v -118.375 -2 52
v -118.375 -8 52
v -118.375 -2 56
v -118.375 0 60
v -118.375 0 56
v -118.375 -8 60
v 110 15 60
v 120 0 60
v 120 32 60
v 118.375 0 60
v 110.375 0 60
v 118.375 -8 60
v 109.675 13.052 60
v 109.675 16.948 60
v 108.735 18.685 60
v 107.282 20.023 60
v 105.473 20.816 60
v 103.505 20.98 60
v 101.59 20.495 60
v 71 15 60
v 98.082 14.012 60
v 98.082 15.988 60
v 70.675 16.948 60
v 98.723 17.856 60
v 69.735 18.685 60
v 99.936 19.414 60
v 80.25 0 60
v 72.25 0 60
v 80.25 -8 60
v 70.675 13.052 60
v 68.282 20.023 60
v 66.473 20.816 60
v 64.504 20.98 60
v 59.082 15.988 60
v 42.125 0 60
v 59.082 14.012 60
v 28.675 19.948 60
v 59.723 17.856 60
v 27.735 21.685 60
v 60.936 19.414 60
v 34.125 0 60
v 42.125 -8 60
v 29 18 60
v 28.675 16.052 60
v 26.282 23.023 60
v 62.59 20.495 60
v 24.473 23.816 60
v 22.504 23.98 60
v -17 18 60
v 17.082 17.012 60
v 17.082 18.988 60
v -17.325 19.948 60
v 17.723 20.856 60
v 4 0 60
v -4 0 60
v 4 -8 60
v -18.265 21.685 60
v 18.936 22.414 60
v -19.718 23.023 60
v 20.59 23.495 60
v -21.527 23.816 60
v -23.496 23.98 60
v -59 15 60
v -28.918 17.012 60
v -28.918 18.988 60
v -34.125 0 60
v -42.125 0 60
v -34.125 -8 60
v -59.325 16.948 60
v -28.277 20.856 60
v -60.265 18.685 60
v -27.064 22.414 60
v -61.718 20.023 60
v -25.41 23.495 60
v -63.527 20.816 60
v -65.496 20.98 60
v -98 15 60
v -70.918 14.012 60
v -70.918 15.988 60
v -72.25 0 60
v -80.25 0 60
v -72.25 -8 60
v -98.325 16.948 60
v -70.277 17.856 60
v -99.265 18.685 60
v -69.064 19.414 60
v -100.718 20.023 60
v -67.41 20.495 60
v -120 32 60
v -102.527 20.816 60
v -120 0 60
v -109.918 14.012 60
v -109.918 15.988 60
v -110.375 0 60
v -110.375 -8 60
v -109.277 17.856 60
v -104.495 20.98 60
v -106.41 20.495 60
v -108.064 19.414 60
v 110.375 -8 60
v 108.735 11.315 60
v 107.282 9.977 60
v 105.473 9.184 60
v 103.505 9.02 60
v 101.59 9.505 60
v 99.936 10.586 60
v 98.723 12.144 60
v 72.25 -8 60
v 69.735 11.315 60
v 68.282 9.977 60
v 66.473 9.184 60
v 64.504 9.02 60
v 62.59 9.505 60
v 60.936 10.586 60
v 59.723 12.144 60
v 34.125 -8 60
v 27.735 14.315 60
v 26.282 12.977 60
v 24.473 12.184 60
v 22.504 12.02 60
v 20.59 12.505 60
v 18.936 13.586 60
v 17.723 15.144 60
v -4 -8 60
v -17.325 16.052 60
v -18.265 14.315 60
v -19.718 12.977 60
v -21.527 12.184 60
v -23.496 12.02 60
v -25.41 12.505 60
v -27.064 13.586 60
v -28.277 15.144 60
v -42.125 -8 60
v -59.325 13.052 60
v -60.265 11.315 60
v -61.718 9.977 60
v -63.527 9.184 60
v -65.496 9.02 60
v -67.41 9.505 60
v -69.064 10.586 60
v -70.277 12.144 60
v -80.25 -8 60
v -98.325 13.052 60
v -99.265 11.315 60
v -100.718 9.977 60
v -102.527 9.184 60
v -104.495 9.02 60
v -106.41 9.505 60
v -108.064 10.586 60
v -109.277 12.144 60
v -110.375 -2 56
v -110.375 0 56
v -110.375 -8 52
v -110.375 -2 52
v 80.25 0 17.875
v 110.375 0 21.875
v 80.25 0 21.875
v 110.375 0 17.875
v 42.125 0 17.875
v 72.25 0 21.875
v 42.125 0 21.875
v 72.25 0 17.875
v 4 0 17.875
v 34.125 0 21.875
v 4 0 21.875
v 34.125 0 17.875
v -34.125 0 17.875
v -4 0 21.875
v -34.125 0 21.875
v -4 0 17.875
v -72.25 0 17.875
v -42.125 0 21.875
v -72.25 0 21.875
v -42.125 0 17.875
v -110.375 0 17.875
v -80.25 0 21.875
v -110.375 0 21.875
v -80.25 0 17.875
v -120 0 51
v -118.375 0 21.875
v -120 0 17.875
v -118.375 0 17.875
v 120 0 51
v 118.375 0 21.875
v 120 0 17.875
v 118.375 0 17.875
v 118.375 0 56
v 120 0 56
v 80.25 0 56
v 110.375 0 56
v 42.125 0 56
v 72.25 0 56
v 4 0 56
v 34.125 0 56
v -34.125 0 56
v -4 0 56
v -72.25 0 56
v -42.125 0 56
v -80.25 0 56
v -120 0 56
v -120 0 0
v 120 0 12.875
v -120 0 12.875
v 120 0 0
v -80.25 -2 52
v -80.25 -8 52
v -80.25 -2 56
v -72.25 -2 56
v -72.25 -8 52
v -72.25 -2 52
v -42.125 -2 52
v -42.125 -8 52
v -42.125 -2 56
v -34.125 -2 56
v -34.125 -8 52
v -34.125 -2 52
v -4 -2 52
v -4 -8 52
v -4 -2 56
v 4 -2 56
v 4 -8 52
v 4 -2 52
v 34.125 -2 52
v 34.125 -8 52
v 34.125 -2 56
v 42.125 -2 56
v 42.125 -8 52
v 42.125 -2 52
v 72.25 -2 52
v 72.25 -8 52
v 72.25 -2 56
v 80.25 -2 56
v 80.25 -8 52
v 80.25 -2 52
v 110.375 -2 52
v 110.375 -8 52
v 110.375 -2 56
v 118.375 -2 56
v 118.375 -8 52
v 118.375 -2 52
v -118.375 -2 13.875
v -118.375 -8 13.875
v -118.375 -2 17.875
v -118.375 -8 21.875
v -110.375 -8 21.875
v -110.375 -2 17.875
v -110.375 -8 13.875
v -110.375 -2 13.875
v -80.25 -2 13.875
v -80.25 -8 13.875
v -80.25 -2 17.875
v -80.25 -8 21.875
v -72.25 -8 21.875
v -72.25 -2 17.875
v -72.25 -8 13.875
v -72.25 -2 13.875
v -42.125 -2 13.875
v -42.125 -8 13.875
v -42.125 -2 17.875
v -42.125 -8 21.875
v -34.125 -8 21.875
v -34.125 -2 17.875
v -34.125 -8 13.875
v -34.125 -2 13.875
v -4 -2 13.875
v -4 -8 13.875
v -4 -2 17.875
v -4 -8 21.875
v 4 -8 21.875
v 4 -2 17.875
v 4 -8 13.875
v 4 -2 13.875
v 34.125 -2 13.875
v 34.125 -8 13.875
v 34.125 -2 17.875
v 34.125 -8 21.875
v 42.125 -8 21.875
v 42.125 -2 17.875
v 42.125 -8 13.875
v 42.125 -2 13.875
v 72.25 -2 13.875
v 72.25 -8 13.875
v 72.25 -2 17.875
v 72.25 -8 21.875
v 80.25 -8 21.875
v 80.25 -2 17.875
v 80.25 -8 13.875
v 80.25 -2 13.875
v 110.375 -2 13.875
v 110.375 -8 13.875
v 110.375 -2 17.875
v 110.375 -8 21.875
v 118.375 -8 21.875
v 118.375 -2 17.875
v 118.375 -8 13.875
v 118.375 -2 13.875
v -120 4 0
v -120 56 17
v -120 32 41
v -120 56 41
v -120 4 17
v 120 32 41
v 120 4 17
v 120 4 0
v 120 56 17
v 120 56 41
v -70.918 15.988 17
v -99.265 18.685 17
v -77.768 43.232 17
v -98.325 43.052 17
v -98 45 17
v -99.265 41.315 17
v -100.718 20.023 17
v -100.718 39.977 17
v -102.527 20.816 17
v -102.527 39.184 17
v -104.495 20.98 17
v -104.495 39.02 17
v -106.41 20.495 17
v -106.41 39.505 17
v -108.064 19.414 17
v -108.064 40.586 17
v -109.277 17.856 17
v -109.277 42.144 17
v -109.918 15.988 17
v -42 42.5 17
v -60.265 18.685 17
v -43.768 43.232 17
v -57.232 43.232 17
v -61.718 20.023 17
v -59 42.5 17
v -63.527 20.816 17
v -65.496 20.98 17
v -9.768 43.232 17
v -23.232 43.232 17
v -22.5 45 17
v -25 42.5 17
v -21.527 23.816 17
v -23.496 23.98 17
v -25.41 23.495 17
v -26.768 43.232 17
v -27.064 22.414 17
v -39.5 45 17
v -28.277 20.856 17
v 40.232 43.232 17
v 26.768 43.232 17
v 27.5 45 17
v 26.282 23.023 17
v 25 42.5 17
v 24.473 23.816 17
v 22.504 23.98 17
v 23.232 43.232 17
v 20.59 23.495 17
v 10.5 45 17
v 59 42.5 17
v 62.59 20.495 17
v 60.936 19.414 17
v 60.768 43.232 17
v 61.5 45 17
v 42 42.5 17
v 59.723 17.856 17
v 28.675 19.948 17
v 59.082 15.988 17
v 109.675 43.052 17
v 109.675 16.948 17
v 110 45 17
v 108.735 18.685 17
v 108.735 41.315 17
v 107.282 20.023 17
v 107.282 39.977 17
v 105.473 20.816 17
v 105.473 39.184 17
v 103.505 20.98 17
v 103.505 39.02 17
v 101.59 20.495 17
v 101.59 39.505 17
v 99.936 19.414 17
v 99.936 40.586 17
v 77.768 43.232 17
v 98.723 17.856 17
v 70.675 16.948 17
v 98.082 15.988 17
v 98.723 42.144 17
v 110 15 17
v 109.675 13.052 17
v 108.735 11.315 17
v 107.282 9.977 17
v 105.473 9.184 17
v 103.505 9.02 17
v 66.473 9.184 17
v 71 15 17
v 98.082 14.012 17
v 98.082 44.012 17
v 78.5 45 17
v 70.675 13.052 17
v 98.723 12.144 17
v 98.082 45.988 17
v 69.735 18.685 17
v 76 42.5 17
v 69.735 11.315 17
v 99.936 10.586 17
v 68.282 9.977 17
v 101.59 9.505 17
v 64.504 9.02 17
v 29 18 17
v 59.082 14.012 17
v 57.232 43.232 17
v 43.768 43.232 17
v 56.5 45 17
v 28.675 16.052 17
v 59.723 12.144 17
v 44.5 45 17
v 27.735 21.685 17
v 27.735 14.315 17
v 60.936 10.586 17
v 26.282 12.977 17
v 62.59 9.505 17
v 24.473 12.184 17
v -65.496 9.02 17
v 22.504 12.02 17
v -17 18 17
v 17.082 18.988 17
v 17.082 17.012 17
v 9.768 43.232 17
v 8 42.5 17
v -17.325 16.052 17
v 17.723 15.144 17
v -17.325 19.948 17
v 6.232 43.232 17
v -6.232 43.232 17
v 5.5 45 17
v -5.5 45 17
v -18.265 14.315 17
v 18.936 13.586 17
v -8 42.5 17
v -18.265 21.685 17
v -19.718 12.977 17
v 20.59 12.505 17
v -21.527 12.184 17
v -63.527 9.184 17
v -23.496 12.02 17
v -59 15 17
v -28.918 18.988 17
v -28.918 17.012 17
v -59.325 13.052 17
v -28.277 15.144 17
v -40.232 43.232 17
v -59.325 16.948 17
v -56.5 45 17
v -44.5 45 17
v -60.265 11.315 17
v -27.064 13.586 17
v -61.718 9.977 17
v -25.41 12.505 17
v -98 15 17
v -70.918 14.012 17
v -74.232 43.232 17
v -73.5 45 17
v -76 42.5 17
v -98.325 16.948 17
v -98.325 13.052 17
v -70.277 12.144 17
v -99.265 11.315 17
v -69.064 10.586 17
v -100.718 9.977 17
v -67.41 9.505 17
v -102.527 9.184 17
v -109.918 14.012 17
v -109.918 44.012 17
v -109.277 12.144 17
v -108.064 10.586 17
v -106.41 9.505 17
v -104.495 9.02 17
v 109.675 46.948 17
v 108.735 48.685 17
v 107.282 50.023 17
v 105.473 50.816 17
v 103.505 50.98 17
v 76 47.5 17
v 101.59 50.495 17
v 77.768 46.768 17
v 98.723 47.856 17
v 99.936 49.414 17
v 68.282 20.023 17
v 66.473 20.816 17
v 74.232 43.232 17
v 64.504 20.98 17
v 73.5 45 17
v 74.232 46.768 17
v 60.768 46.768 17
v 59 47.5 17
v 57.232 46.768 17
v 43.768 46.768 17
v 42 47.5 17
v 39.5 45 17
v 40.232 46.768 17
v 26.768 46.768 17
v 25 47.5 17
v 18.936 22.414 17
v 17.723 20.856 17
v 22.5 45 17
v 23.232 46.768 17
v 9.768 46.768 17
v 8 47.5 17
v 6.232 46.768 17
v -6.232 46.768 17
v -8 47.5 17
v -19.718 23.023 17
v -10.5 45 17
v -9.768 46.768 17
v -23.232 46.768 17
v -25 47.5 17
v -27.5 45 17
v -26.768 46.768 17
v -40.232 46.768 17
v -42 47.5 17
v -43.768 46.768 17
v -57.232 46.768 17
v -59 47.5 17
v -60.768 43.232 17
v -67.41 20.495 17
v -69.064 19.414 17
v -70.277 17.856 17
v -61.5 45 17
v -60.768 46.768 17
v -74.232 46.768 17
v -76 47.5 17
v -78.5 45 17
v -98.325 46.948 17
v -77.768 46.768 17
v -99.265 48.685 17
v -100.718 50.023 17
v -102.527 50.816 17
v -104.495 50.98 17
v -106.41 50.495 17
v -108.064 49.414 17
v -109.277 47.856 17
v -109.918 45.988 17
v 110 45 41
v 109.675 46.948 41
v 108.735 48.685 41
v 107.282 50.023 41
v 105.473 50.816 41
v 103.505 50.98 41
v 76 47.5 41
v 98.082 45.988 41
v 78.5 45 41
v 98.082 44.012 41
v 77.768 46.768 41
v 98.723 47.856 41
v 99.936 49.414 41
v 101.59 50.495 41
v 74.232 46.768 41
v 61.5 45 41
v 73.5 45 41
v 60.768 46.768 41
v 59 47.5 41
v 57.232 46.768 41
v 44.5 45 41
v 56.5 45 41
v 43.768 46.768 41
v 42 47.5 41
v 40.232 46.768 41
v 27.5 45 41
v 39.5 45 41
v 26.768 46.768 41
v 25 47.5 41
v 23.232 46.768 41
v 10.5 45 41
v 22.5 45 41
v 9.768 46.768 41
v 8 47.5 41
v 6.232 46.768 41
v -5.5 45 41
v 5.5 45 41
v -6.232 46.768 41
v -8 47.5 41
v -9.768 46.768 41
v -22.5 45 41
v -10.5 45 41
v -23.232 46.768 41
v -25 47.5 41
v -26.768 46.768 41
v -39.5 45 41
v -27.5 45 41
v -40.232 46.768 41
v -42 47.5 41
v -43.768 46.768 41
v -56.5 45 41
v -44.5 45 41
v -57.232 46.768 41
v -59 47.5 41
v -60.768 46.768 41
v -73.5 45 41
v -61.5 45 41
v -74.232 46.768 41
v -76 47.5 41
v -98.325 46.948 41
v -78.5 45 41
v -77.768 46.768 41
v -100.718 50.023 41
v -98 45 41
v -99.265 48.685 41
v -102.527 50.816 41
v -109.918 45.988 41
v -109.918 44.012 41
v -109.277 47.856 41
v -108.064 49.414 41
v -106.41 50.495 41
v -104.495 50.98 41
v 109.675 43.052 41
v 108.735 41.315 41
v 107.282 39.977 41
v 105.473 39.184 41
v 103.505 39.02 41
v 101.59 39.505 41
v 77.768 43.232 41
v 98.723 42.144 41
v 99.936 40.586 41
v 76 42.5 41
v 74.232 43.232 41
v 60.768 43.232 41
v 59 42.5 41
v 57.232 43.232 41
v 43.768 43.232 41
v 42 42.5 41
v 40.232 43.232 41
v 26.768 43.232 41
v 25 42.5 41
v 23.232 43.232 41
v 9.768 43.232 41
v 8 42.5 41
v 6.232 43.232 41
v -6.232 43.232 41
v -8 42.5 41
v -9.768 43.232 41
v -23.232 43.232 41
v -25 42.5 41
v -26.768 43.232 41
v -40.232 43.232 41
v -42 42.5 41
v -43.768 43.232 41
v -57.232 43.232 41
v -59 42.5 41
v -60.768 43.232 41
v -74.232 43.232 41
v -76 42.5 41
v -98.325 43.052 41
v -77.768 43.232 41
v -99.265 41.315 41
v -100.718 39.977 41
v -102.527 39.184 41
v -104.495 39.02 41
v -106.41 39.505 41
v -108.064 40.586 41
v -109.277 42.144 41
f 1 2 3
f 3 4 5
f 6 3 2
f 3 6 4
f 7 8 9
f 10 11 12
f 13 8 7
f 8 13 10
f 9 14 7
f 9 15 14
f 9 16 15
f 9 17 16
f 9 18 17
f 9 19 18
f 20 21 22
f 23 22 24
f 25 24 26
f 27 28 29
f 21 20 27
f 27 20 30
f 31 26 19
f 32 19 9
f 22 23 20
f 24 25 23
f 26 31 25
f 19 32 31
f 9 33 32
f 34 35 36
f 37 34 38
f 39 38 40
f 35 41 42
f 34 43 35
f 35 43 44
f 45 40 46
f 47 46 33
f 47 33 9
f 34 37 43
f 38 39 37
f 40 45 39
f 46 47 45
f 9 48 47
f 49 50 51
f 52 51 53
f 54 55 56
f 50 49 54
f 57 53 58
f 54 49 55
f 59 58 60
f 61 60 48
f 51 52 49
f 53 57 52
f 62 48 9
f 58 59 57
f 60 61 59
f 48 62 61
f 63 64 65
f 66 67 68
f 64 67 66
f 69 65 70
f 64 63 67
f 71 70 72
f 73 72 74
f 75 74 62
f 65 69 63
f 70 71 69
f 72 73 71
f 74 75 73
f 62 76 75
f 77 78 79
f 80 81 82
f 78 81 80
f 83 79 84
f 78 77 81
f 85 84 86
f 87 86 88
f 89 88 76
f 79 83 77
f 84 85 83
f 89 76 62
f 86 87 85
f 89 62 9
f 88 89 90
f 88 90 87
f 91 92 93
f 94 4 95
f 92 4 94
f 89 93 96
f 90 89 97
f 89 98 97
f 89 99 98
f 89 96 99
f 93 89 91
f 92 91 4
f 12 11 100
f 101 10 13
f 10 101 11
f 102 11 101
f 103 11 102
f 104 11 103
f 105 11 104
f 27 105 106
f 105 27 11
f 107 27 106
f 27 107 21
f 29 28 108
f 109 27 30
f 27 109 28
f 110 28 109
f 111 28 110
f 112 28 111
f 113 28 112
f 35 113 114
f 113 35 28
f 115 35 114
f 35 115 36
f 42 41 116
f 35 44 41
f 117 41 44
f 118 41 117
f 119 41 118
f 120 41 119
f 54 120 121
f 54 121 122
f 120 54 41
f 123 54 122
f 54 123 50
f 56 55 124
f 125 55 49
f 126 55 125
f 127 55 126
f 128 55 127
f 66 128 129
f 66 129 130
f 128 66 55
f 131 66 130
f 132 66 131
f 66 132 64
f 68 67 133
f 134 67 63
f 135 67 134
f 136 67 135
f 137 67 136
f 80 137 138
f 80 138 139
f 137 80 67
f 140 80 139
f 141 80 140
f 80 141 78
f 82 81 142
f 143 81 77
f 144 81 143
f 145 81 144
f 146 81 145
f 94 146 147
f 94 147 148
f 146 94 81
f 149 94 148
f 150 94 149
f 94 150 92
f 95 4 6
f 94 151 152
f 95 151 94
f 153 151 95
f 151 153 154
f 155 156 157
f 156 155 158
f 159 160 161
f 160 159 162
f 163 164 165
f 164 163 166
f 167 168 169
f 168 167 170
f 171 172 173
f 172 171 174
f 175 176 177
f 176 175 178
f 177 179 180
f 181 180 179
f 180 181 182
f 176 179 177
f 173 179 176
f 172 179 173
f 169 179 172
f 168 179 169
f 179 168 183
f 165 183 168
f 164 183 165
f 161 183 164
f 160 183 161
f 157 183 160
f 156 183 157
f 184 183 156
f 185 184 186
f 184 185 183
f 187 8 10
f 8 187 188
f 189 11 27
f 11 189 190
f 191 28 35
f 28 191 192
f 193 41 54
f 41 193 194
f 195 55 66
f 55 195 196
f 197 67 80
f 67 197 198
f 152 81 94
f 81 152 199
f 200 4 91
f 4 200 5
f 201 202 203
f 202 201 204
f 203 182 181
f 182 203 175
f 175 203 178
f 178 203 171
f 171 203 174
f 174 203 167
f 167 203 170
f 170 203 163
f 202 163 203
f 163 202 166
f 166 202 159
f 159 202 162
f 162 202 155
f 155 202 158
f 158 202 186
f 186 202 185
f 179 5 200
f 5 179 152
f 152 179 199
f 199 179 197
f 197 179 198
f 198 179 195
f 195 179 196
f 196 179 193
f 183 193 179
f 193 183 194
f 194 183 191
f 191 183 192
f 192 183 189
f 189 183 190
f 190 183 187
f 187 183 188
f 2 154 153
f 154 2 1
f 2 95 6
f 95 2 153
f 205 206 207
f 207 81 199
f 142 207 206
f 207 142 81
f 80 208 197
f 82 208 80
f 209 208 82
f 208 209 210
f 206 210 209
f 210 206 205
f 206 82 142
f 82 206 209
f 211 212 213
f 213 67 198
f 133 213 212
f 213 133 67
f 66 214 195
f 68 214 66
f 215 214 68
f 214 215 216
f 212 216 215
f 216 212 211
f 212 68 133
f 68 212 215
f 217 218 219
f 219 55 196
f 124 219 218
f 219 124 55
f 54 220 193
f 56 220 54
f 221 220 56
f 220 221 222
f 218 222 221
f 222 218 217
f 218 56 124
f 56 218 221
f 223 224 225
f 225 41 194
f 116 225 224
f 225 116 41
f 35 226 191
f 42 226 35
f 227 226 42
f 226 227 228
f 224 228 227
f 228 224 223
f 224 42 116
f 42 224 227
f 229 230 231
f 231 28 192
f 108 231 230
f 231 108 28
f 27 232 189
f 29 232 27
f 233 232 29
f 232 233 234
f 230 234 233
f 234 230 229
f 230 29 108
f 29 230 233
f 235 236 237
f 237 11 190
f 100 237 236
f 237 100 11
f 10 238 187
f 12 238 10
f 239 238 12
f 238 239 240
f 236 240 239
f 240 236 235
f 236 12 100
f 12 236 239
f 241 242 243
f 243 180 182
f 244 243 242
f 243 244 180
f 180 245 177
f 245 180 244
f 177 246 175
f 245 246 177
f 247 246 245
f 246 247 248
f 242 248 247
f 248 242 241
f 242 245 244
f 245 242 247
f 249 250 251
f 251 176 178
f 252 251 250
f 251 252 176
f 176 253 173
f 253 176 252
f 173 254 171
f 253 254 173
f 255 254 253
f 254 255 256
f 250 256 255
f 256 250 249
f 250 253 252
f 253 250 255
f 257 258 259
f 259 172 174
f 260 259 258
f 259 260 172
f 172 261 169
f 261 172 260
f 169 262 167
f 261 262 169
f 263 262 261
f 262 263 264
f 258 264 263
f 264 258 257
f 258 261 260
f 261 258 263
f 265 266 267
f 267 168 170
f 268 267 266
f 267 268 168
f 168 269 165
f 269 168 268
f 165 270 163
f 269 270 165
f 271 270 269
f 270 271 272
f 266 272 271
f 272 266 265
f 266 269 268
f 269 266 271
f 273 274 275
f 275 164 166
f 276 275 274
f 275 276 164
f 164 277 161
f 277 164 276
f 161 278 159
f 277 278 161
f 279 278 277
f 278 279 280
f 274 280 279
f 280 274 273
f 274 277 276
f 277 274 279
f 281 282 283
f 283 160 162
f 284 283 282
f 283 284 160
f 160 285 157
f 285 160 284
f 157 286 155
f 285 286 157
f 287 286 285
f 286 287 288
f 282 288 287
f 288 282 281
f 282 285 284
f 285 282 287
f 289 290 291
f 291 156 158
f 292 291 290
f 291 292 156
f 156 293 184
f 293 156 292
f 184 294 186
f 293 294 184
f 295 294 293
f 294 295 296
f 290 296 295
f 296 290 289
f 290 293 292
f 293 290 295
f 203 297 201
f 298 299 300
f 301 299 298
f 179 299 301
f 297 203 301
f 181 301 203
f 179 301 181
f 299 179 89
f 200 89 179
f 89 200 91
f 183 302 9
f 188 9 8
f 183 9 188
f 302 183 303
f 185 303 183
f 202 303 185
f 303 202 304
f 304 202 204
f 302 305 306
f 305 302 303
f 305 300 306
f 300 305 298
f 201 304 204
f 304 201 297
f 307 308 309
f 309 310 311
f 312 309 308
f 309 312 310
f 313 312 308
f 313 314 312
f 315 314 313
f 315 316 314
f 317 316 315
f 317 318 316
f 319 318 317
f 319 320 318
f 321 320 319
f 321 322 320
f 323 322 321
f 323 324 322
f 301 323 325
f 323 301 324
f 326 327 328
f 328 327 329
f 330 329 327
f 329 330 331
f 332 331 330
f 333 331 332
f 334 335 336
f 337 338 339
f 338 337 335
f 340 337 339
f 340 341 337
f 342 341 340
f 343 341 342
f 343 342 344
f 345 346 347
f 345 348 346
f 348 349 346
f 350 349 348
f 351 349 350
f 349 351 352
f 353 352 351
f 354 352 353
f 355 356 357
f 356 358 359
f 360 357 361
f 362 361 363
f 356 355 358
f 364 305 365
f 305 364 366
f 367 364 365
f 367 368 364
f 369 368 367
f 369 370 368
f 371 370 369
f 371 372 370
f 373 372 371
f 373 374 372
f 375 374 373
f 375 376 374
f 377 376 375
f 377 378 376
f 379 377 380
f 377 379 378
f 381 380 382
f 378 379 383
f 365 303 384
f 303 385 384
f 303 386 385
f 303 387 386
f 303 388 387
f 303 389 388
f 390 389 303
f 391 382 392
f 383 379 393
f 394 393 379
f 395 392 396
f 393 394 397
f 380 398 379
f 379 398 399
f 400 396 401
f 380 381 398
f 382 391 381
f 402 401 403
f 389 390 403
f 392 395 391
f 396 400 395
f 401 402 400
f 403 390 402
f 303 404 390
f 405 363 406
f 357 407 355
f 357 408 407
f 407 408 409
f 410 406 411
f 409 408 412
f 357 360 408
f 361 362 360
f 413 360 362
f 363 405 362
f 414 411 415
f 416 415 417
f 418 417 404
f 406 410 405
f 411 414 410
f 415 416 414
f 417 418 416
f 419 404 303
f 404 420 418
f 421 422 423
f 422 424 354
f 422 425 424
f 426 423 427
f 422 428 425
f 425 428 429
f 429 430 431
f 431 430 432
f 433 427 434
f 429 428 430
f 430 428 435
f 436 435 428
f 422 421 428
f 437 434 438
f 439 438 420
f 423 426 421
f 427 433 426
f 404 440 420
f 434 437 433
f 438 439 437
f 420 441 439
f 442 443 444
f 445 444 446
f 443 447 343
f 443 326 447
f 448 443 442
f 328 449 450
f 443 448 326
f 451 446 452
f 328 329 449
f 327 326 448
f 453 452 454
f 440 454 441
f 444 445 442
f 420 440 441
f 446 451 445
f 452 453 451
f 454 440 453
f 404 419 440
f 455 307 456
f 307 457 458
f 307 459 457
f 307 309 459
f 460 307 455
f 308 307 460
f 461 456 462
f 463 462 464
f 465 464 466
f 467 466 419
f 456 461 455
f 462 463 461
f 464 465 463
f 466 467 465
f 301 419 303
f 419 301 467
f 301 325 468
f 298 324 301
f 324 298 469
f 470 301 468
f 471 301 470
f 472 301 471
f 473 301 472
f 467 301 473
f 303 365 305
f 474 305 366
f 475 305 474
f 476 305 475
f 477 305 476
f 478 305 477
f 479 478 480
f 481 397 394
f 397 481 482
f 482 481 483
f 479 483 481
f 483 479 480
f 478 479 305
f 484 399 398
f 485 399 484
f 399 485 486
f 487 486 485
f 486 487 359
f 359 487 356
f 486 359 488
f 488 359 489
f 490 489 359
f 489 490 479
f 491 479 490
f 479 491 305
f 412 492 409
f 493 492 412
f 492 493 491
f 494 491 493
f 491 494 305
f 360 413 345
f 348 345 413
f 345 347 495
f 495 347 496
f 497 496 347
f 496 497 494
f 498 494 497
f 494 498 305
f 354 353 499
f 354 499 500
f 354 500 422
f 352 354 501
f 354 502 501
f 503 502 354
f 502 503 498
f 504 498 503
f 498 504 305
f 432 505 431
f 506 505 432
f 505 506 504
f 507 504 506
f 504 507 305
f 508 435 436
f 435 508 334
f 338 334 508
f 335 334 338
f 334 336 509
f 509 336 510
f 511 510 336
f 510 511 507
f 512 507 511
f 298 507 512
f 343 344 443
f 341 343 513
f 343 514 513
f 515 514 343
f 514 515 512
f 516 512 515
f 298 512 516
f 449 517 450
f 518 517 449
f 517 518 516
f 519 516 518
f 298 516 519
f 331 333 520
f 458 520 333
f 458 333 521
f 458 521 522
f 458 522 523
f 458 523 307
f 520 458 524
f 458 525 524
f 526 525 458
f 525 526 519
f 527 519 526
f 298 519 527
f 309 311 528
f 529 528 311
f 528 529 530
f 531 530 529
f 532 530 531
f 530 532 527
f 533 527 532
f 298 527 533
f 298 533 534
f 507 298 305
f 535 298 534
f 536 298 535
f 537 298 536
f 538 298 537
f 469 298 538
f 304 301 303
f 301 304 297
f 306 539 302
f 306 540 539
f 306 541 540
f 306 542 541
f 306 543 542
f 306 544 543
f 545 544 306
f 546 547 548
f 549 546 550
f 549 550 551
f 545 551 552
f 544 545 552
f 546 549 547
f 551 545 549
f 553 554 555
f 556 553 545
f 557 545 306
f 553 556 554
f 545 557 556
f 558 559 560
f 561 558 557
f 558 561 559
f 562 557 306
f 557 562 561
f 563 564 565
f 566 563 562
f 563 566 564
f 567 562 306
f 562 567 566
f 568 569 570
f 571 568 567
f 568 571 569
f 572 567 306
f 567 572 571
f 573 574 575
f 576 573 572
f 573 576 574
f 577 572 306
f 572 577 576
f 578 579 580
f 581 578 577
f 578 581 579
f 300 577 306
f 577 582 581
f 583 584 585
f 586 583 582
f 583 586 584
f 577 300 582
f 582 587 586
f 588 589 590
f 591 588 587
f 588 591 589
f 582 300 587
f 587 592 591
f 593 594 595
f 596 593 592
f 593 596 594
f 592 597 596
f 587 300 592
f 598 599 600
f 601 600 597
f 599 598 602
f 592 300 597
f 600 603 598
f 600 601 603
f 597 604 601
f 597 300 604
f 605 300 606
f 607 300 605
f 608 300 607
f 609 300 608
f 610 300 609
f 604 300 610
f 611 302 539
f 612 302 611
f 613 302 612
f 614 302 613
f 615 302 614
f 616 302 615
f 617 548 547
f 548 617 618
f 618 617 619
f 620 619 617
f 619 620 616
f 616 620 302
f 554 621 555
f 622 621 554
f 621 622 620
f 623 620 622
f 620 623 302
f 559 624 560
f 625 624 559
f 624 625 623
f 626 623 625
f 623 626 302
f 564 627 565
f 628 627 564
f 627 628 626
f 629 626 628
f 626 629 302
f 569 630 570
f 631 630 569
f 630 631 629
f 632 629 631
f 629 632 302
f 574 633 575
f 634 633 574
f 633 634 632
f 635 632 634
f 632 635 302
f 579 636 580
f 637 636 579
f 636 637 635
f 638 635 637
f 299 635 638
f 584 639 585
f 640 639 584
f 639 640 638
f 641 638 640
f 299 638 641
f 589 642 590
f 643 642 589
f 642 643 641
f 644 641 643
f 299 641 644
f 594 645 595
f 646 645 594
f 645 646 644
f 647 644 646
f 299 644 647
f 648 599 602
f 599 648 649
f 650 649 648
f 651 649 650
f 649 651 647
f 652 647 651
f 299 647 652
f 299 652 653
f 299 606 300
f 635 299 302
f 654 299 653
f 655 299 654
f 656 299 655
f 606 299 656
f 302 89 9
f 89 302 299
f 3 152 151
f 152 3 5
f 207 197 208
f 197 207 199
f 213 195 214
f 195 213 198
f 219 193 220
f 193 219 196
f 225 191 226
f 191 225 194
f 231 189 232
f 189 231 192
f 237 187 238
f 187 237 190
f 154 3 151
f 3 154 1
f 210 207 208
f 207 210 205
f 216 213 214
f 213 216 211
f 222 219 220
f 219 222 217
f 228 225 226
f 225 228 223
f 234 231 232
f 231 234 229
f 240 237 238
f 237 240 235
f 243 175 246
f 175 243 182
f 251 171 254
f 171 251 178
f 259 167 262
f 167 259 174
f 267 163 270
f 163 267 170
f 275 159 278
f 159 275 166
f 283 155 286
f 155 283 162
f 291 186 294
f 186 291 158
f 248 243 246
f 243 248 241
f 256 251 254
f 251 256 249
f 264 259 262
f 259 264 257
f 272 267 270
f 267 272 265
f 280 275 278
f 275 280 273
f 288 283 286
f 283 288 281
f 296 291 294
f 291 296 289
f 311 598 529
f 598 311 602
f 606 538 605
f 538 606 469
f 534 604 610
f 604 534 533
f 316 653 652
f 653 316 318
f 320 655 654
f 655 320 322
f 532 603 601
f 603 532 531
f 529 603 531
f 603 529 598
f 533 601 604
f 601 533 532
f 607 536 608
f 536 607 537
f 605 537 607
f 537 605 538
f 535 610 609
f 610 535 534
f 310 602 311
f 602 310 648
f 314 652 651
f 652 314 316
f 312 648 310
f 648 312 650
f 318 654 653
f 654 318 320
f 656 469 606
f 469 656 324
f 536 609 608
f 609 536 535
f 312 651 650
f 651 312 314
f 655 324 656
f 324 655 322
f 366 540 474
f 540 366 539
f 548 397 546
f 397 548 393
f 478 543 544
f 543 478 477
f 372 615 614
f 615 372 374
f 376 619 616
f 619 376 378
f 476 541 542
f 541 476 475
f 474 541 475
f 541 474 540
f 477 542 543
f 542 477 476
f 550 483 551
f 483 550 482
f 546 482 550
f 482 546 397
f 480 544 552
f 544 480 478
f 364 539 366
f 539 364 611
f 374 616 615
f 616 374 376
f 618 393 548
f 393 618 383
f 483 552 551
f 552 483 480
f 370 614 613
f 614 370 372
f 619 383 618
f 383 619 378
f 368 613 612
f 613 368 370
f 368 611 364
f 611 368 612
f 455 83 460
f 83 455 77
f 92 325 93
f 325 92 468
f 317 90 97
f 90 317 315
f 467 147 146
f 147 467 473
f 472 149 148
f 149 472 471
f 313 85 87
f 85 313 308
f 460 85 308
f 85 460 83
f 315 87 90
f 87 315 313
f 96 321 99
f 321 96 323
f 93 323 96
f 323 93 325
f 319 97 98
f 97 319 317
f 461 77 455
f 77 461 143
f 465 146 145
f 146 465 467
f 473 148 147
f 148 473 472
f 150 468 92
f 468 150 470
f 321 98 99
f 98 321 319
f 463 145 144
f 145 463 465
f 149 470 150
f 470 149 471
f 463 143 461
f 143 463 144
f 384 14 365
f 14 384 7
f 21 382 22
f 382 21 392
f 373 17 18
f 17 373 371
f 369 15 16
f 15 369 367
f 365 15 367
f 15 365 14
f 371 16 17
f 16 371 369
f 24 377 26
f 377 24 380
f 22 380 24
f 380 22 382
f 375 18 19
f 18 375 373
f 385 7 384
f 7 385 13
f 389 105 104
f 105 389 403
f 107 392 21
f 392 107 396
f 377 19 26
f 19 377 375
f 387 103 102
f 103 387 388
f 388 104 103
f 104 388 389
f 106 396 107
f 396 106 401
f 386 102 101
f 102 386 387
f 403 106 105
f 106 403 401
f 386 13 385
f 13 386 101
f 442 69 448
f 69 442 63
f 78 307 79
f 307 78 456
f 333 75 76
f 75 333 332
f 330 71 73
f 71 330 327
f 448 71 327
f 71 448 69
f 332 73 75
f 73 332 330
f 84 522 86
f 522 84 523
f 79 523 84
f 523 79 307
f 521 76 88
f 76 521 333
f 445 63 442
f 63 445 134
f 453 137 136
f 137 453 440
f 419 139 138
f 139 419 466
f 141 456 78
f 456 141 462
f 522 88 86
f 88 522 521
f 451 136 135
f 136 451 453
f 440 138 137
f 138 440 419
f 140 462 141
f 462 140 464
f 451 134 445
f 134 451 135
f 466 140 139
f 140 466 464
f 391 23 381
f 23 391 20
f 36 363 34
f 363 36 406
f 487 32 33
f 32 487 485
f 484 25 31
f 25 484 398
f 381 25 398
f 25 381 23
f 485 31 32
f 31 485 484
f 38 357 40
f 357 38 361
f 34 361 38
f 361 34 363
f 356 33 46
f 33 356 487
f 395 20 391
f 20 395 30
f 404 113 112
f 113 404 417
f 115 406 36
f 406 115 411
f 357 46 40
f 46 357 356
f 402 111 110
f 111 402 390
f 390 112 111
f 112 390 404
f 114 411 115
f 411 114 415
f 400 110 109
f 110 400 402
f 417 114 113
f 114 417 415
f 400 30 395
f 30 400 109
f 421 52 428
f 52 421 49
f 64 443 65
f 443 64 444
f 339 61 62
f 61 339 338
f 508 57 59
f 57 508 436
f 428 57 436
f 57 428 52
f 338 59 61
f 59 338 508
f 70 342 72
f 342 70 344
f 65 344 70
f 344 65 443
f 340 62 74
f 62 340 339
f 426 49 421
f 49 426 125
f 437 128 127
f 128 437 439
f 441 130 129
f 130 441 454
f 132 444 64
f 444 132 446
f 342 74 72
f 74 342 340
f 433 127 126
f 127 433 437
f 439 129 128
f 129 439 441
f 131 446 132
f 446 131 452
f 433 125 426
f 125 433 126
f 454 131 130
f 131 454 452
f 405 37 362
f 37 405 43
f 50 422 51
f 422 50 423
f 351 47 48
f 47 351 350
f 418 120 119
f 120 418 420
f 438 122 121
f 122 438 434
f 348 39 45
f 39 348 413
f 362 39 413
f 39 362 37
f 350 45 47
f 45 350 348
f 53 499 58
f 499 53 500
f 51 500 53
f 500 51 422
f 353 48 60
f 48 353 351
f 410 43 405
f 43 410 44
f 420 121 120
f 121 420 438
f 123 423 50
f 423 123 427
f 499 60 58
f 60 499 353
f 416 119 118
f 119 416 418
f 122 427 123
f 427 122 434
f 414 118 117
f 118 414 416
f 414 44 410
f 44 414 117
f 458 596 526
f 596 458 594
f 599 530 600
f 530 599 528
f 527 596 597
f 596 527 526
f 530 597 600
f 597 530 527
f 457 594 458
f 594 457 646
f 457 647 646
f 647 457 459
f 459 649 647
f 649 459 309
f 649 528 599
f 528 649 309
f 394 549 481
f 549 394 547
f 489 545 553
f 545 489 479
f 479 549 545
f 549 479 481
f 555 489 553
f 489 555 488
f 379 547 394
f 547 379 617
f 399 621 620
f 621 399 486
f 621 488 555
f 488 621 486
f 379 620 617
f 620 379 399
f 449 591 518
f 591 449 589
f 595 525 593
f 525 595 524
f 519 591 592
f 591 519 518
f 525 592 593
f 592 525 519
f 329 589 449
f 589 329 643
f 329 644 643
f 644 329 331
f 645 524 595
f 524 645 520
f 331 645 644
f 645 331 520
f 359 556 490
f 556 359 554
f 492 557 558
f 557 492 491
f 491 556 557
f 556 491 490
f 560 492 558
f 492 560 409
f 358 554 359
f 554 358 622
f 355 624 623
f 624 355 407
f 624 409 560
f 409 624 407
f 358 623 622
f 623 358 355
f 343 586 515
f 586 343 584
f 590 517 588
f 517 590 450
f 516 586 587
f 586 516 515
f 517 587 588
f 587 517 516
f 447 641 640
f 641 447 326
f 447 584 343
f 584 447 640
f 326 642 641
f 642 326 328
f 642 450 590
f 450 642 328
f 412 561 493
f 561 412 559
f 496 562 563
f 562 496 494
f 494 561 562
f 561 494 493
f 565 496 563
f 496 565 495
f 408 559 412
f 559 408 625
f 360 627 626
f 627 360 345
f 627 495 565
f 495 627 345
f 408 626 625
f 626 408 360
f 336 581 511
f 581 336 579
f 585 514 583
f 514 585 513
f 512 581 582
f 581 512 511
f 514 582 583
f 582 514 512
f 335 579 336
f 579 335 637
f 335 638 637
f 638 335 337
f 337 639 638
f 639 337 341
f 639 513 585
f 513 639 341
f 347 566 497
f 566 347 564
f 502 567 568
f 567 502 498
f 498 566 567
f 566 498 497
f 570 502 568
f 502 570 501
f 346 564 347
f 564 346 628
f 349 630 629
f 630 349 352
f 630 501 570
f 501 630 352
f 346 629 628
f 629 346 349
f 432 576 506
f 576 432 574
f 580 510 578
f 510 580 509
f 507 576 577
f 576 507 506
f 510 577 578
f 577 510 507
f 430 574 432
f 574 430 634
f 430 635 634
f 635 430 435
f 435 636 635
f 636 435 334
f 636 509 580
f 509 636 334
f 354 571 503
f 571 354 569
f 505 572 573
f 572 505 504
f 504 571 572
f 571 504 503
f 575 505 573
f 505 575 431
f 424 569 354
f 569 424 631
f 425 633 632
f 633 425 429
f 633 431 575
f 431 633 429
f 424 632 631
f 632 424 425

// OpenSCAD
difference() {
    union() {
        translate([-120, 0, 0])
            cube([240, 56, 60]);
        for (a =[0:6])
        translate([a * 38.125 - (120 - (240 - 8 - 6*38.125) / 2), -8, 52])
            cube([8,8,8]);

        for (a =[0:6])
        translate([a * 38.125 - (120 - (240 - 8 - 6*38.125) / 2), -8, 52 - 38.125])
            cube([8,8,8]);
    }
    union() {
        translate([-121, 4, -1])
            cube([242, 56, 18]);
        translate([-121, 32, 41])
            cube([242, 56, 20]);

        translate([-121, -2, 51])
            cube([242, 2, 5]);
        translate([-121, -2, 51 - 38.125])
            cube([242, 2, 5]);
        
        translate([-104, 45, 0])
            cylinder(d=12, h=60);
        translate([104, 45, 0])
            cylinder(d=12, h=60);

        translate([-104, 15, 0])
            cylinder(d=12, h=60);
        translate([104, 15, 0])
            cylinder(d=12, h=60);

        translate([-65, 15, 0])
            cylinder(d=12, h=60);
        translate([65, 15, 0])
            cylinder(d=12, h=60);

        translate([-23, 18, 0])
            cylinder(d=12, h=60);
        translate([23, 18, 0])
            cylinder(d=12, h=60);

        translate([-76, 45, 0])
            cylinder(d=5, h=60);
        translate([76, 45, 0])
            cylinder(d=5, h=60);

        translate([-59, 45, 0])
            cylinder(d=5, h=60);
        translate([59, 45, 0])
            cylinder(d=5, h=60);

        translate([-42, 45, 0])
            cylinder(d=5, h=60);
        translate([42, 45, 0])
            cylinder(d=5, h=60);

        translate([-25, 45, 0])
            cylinder(d=5, h=60);
        translate([25, 45, 0])
            cylinder(d=5, h=60);

        translate([-8, 45, 0])
            cylinder(d=5, h=60);
        translate([8, 45, 0])
            cylinder(d=5, h=60);
    }
}
